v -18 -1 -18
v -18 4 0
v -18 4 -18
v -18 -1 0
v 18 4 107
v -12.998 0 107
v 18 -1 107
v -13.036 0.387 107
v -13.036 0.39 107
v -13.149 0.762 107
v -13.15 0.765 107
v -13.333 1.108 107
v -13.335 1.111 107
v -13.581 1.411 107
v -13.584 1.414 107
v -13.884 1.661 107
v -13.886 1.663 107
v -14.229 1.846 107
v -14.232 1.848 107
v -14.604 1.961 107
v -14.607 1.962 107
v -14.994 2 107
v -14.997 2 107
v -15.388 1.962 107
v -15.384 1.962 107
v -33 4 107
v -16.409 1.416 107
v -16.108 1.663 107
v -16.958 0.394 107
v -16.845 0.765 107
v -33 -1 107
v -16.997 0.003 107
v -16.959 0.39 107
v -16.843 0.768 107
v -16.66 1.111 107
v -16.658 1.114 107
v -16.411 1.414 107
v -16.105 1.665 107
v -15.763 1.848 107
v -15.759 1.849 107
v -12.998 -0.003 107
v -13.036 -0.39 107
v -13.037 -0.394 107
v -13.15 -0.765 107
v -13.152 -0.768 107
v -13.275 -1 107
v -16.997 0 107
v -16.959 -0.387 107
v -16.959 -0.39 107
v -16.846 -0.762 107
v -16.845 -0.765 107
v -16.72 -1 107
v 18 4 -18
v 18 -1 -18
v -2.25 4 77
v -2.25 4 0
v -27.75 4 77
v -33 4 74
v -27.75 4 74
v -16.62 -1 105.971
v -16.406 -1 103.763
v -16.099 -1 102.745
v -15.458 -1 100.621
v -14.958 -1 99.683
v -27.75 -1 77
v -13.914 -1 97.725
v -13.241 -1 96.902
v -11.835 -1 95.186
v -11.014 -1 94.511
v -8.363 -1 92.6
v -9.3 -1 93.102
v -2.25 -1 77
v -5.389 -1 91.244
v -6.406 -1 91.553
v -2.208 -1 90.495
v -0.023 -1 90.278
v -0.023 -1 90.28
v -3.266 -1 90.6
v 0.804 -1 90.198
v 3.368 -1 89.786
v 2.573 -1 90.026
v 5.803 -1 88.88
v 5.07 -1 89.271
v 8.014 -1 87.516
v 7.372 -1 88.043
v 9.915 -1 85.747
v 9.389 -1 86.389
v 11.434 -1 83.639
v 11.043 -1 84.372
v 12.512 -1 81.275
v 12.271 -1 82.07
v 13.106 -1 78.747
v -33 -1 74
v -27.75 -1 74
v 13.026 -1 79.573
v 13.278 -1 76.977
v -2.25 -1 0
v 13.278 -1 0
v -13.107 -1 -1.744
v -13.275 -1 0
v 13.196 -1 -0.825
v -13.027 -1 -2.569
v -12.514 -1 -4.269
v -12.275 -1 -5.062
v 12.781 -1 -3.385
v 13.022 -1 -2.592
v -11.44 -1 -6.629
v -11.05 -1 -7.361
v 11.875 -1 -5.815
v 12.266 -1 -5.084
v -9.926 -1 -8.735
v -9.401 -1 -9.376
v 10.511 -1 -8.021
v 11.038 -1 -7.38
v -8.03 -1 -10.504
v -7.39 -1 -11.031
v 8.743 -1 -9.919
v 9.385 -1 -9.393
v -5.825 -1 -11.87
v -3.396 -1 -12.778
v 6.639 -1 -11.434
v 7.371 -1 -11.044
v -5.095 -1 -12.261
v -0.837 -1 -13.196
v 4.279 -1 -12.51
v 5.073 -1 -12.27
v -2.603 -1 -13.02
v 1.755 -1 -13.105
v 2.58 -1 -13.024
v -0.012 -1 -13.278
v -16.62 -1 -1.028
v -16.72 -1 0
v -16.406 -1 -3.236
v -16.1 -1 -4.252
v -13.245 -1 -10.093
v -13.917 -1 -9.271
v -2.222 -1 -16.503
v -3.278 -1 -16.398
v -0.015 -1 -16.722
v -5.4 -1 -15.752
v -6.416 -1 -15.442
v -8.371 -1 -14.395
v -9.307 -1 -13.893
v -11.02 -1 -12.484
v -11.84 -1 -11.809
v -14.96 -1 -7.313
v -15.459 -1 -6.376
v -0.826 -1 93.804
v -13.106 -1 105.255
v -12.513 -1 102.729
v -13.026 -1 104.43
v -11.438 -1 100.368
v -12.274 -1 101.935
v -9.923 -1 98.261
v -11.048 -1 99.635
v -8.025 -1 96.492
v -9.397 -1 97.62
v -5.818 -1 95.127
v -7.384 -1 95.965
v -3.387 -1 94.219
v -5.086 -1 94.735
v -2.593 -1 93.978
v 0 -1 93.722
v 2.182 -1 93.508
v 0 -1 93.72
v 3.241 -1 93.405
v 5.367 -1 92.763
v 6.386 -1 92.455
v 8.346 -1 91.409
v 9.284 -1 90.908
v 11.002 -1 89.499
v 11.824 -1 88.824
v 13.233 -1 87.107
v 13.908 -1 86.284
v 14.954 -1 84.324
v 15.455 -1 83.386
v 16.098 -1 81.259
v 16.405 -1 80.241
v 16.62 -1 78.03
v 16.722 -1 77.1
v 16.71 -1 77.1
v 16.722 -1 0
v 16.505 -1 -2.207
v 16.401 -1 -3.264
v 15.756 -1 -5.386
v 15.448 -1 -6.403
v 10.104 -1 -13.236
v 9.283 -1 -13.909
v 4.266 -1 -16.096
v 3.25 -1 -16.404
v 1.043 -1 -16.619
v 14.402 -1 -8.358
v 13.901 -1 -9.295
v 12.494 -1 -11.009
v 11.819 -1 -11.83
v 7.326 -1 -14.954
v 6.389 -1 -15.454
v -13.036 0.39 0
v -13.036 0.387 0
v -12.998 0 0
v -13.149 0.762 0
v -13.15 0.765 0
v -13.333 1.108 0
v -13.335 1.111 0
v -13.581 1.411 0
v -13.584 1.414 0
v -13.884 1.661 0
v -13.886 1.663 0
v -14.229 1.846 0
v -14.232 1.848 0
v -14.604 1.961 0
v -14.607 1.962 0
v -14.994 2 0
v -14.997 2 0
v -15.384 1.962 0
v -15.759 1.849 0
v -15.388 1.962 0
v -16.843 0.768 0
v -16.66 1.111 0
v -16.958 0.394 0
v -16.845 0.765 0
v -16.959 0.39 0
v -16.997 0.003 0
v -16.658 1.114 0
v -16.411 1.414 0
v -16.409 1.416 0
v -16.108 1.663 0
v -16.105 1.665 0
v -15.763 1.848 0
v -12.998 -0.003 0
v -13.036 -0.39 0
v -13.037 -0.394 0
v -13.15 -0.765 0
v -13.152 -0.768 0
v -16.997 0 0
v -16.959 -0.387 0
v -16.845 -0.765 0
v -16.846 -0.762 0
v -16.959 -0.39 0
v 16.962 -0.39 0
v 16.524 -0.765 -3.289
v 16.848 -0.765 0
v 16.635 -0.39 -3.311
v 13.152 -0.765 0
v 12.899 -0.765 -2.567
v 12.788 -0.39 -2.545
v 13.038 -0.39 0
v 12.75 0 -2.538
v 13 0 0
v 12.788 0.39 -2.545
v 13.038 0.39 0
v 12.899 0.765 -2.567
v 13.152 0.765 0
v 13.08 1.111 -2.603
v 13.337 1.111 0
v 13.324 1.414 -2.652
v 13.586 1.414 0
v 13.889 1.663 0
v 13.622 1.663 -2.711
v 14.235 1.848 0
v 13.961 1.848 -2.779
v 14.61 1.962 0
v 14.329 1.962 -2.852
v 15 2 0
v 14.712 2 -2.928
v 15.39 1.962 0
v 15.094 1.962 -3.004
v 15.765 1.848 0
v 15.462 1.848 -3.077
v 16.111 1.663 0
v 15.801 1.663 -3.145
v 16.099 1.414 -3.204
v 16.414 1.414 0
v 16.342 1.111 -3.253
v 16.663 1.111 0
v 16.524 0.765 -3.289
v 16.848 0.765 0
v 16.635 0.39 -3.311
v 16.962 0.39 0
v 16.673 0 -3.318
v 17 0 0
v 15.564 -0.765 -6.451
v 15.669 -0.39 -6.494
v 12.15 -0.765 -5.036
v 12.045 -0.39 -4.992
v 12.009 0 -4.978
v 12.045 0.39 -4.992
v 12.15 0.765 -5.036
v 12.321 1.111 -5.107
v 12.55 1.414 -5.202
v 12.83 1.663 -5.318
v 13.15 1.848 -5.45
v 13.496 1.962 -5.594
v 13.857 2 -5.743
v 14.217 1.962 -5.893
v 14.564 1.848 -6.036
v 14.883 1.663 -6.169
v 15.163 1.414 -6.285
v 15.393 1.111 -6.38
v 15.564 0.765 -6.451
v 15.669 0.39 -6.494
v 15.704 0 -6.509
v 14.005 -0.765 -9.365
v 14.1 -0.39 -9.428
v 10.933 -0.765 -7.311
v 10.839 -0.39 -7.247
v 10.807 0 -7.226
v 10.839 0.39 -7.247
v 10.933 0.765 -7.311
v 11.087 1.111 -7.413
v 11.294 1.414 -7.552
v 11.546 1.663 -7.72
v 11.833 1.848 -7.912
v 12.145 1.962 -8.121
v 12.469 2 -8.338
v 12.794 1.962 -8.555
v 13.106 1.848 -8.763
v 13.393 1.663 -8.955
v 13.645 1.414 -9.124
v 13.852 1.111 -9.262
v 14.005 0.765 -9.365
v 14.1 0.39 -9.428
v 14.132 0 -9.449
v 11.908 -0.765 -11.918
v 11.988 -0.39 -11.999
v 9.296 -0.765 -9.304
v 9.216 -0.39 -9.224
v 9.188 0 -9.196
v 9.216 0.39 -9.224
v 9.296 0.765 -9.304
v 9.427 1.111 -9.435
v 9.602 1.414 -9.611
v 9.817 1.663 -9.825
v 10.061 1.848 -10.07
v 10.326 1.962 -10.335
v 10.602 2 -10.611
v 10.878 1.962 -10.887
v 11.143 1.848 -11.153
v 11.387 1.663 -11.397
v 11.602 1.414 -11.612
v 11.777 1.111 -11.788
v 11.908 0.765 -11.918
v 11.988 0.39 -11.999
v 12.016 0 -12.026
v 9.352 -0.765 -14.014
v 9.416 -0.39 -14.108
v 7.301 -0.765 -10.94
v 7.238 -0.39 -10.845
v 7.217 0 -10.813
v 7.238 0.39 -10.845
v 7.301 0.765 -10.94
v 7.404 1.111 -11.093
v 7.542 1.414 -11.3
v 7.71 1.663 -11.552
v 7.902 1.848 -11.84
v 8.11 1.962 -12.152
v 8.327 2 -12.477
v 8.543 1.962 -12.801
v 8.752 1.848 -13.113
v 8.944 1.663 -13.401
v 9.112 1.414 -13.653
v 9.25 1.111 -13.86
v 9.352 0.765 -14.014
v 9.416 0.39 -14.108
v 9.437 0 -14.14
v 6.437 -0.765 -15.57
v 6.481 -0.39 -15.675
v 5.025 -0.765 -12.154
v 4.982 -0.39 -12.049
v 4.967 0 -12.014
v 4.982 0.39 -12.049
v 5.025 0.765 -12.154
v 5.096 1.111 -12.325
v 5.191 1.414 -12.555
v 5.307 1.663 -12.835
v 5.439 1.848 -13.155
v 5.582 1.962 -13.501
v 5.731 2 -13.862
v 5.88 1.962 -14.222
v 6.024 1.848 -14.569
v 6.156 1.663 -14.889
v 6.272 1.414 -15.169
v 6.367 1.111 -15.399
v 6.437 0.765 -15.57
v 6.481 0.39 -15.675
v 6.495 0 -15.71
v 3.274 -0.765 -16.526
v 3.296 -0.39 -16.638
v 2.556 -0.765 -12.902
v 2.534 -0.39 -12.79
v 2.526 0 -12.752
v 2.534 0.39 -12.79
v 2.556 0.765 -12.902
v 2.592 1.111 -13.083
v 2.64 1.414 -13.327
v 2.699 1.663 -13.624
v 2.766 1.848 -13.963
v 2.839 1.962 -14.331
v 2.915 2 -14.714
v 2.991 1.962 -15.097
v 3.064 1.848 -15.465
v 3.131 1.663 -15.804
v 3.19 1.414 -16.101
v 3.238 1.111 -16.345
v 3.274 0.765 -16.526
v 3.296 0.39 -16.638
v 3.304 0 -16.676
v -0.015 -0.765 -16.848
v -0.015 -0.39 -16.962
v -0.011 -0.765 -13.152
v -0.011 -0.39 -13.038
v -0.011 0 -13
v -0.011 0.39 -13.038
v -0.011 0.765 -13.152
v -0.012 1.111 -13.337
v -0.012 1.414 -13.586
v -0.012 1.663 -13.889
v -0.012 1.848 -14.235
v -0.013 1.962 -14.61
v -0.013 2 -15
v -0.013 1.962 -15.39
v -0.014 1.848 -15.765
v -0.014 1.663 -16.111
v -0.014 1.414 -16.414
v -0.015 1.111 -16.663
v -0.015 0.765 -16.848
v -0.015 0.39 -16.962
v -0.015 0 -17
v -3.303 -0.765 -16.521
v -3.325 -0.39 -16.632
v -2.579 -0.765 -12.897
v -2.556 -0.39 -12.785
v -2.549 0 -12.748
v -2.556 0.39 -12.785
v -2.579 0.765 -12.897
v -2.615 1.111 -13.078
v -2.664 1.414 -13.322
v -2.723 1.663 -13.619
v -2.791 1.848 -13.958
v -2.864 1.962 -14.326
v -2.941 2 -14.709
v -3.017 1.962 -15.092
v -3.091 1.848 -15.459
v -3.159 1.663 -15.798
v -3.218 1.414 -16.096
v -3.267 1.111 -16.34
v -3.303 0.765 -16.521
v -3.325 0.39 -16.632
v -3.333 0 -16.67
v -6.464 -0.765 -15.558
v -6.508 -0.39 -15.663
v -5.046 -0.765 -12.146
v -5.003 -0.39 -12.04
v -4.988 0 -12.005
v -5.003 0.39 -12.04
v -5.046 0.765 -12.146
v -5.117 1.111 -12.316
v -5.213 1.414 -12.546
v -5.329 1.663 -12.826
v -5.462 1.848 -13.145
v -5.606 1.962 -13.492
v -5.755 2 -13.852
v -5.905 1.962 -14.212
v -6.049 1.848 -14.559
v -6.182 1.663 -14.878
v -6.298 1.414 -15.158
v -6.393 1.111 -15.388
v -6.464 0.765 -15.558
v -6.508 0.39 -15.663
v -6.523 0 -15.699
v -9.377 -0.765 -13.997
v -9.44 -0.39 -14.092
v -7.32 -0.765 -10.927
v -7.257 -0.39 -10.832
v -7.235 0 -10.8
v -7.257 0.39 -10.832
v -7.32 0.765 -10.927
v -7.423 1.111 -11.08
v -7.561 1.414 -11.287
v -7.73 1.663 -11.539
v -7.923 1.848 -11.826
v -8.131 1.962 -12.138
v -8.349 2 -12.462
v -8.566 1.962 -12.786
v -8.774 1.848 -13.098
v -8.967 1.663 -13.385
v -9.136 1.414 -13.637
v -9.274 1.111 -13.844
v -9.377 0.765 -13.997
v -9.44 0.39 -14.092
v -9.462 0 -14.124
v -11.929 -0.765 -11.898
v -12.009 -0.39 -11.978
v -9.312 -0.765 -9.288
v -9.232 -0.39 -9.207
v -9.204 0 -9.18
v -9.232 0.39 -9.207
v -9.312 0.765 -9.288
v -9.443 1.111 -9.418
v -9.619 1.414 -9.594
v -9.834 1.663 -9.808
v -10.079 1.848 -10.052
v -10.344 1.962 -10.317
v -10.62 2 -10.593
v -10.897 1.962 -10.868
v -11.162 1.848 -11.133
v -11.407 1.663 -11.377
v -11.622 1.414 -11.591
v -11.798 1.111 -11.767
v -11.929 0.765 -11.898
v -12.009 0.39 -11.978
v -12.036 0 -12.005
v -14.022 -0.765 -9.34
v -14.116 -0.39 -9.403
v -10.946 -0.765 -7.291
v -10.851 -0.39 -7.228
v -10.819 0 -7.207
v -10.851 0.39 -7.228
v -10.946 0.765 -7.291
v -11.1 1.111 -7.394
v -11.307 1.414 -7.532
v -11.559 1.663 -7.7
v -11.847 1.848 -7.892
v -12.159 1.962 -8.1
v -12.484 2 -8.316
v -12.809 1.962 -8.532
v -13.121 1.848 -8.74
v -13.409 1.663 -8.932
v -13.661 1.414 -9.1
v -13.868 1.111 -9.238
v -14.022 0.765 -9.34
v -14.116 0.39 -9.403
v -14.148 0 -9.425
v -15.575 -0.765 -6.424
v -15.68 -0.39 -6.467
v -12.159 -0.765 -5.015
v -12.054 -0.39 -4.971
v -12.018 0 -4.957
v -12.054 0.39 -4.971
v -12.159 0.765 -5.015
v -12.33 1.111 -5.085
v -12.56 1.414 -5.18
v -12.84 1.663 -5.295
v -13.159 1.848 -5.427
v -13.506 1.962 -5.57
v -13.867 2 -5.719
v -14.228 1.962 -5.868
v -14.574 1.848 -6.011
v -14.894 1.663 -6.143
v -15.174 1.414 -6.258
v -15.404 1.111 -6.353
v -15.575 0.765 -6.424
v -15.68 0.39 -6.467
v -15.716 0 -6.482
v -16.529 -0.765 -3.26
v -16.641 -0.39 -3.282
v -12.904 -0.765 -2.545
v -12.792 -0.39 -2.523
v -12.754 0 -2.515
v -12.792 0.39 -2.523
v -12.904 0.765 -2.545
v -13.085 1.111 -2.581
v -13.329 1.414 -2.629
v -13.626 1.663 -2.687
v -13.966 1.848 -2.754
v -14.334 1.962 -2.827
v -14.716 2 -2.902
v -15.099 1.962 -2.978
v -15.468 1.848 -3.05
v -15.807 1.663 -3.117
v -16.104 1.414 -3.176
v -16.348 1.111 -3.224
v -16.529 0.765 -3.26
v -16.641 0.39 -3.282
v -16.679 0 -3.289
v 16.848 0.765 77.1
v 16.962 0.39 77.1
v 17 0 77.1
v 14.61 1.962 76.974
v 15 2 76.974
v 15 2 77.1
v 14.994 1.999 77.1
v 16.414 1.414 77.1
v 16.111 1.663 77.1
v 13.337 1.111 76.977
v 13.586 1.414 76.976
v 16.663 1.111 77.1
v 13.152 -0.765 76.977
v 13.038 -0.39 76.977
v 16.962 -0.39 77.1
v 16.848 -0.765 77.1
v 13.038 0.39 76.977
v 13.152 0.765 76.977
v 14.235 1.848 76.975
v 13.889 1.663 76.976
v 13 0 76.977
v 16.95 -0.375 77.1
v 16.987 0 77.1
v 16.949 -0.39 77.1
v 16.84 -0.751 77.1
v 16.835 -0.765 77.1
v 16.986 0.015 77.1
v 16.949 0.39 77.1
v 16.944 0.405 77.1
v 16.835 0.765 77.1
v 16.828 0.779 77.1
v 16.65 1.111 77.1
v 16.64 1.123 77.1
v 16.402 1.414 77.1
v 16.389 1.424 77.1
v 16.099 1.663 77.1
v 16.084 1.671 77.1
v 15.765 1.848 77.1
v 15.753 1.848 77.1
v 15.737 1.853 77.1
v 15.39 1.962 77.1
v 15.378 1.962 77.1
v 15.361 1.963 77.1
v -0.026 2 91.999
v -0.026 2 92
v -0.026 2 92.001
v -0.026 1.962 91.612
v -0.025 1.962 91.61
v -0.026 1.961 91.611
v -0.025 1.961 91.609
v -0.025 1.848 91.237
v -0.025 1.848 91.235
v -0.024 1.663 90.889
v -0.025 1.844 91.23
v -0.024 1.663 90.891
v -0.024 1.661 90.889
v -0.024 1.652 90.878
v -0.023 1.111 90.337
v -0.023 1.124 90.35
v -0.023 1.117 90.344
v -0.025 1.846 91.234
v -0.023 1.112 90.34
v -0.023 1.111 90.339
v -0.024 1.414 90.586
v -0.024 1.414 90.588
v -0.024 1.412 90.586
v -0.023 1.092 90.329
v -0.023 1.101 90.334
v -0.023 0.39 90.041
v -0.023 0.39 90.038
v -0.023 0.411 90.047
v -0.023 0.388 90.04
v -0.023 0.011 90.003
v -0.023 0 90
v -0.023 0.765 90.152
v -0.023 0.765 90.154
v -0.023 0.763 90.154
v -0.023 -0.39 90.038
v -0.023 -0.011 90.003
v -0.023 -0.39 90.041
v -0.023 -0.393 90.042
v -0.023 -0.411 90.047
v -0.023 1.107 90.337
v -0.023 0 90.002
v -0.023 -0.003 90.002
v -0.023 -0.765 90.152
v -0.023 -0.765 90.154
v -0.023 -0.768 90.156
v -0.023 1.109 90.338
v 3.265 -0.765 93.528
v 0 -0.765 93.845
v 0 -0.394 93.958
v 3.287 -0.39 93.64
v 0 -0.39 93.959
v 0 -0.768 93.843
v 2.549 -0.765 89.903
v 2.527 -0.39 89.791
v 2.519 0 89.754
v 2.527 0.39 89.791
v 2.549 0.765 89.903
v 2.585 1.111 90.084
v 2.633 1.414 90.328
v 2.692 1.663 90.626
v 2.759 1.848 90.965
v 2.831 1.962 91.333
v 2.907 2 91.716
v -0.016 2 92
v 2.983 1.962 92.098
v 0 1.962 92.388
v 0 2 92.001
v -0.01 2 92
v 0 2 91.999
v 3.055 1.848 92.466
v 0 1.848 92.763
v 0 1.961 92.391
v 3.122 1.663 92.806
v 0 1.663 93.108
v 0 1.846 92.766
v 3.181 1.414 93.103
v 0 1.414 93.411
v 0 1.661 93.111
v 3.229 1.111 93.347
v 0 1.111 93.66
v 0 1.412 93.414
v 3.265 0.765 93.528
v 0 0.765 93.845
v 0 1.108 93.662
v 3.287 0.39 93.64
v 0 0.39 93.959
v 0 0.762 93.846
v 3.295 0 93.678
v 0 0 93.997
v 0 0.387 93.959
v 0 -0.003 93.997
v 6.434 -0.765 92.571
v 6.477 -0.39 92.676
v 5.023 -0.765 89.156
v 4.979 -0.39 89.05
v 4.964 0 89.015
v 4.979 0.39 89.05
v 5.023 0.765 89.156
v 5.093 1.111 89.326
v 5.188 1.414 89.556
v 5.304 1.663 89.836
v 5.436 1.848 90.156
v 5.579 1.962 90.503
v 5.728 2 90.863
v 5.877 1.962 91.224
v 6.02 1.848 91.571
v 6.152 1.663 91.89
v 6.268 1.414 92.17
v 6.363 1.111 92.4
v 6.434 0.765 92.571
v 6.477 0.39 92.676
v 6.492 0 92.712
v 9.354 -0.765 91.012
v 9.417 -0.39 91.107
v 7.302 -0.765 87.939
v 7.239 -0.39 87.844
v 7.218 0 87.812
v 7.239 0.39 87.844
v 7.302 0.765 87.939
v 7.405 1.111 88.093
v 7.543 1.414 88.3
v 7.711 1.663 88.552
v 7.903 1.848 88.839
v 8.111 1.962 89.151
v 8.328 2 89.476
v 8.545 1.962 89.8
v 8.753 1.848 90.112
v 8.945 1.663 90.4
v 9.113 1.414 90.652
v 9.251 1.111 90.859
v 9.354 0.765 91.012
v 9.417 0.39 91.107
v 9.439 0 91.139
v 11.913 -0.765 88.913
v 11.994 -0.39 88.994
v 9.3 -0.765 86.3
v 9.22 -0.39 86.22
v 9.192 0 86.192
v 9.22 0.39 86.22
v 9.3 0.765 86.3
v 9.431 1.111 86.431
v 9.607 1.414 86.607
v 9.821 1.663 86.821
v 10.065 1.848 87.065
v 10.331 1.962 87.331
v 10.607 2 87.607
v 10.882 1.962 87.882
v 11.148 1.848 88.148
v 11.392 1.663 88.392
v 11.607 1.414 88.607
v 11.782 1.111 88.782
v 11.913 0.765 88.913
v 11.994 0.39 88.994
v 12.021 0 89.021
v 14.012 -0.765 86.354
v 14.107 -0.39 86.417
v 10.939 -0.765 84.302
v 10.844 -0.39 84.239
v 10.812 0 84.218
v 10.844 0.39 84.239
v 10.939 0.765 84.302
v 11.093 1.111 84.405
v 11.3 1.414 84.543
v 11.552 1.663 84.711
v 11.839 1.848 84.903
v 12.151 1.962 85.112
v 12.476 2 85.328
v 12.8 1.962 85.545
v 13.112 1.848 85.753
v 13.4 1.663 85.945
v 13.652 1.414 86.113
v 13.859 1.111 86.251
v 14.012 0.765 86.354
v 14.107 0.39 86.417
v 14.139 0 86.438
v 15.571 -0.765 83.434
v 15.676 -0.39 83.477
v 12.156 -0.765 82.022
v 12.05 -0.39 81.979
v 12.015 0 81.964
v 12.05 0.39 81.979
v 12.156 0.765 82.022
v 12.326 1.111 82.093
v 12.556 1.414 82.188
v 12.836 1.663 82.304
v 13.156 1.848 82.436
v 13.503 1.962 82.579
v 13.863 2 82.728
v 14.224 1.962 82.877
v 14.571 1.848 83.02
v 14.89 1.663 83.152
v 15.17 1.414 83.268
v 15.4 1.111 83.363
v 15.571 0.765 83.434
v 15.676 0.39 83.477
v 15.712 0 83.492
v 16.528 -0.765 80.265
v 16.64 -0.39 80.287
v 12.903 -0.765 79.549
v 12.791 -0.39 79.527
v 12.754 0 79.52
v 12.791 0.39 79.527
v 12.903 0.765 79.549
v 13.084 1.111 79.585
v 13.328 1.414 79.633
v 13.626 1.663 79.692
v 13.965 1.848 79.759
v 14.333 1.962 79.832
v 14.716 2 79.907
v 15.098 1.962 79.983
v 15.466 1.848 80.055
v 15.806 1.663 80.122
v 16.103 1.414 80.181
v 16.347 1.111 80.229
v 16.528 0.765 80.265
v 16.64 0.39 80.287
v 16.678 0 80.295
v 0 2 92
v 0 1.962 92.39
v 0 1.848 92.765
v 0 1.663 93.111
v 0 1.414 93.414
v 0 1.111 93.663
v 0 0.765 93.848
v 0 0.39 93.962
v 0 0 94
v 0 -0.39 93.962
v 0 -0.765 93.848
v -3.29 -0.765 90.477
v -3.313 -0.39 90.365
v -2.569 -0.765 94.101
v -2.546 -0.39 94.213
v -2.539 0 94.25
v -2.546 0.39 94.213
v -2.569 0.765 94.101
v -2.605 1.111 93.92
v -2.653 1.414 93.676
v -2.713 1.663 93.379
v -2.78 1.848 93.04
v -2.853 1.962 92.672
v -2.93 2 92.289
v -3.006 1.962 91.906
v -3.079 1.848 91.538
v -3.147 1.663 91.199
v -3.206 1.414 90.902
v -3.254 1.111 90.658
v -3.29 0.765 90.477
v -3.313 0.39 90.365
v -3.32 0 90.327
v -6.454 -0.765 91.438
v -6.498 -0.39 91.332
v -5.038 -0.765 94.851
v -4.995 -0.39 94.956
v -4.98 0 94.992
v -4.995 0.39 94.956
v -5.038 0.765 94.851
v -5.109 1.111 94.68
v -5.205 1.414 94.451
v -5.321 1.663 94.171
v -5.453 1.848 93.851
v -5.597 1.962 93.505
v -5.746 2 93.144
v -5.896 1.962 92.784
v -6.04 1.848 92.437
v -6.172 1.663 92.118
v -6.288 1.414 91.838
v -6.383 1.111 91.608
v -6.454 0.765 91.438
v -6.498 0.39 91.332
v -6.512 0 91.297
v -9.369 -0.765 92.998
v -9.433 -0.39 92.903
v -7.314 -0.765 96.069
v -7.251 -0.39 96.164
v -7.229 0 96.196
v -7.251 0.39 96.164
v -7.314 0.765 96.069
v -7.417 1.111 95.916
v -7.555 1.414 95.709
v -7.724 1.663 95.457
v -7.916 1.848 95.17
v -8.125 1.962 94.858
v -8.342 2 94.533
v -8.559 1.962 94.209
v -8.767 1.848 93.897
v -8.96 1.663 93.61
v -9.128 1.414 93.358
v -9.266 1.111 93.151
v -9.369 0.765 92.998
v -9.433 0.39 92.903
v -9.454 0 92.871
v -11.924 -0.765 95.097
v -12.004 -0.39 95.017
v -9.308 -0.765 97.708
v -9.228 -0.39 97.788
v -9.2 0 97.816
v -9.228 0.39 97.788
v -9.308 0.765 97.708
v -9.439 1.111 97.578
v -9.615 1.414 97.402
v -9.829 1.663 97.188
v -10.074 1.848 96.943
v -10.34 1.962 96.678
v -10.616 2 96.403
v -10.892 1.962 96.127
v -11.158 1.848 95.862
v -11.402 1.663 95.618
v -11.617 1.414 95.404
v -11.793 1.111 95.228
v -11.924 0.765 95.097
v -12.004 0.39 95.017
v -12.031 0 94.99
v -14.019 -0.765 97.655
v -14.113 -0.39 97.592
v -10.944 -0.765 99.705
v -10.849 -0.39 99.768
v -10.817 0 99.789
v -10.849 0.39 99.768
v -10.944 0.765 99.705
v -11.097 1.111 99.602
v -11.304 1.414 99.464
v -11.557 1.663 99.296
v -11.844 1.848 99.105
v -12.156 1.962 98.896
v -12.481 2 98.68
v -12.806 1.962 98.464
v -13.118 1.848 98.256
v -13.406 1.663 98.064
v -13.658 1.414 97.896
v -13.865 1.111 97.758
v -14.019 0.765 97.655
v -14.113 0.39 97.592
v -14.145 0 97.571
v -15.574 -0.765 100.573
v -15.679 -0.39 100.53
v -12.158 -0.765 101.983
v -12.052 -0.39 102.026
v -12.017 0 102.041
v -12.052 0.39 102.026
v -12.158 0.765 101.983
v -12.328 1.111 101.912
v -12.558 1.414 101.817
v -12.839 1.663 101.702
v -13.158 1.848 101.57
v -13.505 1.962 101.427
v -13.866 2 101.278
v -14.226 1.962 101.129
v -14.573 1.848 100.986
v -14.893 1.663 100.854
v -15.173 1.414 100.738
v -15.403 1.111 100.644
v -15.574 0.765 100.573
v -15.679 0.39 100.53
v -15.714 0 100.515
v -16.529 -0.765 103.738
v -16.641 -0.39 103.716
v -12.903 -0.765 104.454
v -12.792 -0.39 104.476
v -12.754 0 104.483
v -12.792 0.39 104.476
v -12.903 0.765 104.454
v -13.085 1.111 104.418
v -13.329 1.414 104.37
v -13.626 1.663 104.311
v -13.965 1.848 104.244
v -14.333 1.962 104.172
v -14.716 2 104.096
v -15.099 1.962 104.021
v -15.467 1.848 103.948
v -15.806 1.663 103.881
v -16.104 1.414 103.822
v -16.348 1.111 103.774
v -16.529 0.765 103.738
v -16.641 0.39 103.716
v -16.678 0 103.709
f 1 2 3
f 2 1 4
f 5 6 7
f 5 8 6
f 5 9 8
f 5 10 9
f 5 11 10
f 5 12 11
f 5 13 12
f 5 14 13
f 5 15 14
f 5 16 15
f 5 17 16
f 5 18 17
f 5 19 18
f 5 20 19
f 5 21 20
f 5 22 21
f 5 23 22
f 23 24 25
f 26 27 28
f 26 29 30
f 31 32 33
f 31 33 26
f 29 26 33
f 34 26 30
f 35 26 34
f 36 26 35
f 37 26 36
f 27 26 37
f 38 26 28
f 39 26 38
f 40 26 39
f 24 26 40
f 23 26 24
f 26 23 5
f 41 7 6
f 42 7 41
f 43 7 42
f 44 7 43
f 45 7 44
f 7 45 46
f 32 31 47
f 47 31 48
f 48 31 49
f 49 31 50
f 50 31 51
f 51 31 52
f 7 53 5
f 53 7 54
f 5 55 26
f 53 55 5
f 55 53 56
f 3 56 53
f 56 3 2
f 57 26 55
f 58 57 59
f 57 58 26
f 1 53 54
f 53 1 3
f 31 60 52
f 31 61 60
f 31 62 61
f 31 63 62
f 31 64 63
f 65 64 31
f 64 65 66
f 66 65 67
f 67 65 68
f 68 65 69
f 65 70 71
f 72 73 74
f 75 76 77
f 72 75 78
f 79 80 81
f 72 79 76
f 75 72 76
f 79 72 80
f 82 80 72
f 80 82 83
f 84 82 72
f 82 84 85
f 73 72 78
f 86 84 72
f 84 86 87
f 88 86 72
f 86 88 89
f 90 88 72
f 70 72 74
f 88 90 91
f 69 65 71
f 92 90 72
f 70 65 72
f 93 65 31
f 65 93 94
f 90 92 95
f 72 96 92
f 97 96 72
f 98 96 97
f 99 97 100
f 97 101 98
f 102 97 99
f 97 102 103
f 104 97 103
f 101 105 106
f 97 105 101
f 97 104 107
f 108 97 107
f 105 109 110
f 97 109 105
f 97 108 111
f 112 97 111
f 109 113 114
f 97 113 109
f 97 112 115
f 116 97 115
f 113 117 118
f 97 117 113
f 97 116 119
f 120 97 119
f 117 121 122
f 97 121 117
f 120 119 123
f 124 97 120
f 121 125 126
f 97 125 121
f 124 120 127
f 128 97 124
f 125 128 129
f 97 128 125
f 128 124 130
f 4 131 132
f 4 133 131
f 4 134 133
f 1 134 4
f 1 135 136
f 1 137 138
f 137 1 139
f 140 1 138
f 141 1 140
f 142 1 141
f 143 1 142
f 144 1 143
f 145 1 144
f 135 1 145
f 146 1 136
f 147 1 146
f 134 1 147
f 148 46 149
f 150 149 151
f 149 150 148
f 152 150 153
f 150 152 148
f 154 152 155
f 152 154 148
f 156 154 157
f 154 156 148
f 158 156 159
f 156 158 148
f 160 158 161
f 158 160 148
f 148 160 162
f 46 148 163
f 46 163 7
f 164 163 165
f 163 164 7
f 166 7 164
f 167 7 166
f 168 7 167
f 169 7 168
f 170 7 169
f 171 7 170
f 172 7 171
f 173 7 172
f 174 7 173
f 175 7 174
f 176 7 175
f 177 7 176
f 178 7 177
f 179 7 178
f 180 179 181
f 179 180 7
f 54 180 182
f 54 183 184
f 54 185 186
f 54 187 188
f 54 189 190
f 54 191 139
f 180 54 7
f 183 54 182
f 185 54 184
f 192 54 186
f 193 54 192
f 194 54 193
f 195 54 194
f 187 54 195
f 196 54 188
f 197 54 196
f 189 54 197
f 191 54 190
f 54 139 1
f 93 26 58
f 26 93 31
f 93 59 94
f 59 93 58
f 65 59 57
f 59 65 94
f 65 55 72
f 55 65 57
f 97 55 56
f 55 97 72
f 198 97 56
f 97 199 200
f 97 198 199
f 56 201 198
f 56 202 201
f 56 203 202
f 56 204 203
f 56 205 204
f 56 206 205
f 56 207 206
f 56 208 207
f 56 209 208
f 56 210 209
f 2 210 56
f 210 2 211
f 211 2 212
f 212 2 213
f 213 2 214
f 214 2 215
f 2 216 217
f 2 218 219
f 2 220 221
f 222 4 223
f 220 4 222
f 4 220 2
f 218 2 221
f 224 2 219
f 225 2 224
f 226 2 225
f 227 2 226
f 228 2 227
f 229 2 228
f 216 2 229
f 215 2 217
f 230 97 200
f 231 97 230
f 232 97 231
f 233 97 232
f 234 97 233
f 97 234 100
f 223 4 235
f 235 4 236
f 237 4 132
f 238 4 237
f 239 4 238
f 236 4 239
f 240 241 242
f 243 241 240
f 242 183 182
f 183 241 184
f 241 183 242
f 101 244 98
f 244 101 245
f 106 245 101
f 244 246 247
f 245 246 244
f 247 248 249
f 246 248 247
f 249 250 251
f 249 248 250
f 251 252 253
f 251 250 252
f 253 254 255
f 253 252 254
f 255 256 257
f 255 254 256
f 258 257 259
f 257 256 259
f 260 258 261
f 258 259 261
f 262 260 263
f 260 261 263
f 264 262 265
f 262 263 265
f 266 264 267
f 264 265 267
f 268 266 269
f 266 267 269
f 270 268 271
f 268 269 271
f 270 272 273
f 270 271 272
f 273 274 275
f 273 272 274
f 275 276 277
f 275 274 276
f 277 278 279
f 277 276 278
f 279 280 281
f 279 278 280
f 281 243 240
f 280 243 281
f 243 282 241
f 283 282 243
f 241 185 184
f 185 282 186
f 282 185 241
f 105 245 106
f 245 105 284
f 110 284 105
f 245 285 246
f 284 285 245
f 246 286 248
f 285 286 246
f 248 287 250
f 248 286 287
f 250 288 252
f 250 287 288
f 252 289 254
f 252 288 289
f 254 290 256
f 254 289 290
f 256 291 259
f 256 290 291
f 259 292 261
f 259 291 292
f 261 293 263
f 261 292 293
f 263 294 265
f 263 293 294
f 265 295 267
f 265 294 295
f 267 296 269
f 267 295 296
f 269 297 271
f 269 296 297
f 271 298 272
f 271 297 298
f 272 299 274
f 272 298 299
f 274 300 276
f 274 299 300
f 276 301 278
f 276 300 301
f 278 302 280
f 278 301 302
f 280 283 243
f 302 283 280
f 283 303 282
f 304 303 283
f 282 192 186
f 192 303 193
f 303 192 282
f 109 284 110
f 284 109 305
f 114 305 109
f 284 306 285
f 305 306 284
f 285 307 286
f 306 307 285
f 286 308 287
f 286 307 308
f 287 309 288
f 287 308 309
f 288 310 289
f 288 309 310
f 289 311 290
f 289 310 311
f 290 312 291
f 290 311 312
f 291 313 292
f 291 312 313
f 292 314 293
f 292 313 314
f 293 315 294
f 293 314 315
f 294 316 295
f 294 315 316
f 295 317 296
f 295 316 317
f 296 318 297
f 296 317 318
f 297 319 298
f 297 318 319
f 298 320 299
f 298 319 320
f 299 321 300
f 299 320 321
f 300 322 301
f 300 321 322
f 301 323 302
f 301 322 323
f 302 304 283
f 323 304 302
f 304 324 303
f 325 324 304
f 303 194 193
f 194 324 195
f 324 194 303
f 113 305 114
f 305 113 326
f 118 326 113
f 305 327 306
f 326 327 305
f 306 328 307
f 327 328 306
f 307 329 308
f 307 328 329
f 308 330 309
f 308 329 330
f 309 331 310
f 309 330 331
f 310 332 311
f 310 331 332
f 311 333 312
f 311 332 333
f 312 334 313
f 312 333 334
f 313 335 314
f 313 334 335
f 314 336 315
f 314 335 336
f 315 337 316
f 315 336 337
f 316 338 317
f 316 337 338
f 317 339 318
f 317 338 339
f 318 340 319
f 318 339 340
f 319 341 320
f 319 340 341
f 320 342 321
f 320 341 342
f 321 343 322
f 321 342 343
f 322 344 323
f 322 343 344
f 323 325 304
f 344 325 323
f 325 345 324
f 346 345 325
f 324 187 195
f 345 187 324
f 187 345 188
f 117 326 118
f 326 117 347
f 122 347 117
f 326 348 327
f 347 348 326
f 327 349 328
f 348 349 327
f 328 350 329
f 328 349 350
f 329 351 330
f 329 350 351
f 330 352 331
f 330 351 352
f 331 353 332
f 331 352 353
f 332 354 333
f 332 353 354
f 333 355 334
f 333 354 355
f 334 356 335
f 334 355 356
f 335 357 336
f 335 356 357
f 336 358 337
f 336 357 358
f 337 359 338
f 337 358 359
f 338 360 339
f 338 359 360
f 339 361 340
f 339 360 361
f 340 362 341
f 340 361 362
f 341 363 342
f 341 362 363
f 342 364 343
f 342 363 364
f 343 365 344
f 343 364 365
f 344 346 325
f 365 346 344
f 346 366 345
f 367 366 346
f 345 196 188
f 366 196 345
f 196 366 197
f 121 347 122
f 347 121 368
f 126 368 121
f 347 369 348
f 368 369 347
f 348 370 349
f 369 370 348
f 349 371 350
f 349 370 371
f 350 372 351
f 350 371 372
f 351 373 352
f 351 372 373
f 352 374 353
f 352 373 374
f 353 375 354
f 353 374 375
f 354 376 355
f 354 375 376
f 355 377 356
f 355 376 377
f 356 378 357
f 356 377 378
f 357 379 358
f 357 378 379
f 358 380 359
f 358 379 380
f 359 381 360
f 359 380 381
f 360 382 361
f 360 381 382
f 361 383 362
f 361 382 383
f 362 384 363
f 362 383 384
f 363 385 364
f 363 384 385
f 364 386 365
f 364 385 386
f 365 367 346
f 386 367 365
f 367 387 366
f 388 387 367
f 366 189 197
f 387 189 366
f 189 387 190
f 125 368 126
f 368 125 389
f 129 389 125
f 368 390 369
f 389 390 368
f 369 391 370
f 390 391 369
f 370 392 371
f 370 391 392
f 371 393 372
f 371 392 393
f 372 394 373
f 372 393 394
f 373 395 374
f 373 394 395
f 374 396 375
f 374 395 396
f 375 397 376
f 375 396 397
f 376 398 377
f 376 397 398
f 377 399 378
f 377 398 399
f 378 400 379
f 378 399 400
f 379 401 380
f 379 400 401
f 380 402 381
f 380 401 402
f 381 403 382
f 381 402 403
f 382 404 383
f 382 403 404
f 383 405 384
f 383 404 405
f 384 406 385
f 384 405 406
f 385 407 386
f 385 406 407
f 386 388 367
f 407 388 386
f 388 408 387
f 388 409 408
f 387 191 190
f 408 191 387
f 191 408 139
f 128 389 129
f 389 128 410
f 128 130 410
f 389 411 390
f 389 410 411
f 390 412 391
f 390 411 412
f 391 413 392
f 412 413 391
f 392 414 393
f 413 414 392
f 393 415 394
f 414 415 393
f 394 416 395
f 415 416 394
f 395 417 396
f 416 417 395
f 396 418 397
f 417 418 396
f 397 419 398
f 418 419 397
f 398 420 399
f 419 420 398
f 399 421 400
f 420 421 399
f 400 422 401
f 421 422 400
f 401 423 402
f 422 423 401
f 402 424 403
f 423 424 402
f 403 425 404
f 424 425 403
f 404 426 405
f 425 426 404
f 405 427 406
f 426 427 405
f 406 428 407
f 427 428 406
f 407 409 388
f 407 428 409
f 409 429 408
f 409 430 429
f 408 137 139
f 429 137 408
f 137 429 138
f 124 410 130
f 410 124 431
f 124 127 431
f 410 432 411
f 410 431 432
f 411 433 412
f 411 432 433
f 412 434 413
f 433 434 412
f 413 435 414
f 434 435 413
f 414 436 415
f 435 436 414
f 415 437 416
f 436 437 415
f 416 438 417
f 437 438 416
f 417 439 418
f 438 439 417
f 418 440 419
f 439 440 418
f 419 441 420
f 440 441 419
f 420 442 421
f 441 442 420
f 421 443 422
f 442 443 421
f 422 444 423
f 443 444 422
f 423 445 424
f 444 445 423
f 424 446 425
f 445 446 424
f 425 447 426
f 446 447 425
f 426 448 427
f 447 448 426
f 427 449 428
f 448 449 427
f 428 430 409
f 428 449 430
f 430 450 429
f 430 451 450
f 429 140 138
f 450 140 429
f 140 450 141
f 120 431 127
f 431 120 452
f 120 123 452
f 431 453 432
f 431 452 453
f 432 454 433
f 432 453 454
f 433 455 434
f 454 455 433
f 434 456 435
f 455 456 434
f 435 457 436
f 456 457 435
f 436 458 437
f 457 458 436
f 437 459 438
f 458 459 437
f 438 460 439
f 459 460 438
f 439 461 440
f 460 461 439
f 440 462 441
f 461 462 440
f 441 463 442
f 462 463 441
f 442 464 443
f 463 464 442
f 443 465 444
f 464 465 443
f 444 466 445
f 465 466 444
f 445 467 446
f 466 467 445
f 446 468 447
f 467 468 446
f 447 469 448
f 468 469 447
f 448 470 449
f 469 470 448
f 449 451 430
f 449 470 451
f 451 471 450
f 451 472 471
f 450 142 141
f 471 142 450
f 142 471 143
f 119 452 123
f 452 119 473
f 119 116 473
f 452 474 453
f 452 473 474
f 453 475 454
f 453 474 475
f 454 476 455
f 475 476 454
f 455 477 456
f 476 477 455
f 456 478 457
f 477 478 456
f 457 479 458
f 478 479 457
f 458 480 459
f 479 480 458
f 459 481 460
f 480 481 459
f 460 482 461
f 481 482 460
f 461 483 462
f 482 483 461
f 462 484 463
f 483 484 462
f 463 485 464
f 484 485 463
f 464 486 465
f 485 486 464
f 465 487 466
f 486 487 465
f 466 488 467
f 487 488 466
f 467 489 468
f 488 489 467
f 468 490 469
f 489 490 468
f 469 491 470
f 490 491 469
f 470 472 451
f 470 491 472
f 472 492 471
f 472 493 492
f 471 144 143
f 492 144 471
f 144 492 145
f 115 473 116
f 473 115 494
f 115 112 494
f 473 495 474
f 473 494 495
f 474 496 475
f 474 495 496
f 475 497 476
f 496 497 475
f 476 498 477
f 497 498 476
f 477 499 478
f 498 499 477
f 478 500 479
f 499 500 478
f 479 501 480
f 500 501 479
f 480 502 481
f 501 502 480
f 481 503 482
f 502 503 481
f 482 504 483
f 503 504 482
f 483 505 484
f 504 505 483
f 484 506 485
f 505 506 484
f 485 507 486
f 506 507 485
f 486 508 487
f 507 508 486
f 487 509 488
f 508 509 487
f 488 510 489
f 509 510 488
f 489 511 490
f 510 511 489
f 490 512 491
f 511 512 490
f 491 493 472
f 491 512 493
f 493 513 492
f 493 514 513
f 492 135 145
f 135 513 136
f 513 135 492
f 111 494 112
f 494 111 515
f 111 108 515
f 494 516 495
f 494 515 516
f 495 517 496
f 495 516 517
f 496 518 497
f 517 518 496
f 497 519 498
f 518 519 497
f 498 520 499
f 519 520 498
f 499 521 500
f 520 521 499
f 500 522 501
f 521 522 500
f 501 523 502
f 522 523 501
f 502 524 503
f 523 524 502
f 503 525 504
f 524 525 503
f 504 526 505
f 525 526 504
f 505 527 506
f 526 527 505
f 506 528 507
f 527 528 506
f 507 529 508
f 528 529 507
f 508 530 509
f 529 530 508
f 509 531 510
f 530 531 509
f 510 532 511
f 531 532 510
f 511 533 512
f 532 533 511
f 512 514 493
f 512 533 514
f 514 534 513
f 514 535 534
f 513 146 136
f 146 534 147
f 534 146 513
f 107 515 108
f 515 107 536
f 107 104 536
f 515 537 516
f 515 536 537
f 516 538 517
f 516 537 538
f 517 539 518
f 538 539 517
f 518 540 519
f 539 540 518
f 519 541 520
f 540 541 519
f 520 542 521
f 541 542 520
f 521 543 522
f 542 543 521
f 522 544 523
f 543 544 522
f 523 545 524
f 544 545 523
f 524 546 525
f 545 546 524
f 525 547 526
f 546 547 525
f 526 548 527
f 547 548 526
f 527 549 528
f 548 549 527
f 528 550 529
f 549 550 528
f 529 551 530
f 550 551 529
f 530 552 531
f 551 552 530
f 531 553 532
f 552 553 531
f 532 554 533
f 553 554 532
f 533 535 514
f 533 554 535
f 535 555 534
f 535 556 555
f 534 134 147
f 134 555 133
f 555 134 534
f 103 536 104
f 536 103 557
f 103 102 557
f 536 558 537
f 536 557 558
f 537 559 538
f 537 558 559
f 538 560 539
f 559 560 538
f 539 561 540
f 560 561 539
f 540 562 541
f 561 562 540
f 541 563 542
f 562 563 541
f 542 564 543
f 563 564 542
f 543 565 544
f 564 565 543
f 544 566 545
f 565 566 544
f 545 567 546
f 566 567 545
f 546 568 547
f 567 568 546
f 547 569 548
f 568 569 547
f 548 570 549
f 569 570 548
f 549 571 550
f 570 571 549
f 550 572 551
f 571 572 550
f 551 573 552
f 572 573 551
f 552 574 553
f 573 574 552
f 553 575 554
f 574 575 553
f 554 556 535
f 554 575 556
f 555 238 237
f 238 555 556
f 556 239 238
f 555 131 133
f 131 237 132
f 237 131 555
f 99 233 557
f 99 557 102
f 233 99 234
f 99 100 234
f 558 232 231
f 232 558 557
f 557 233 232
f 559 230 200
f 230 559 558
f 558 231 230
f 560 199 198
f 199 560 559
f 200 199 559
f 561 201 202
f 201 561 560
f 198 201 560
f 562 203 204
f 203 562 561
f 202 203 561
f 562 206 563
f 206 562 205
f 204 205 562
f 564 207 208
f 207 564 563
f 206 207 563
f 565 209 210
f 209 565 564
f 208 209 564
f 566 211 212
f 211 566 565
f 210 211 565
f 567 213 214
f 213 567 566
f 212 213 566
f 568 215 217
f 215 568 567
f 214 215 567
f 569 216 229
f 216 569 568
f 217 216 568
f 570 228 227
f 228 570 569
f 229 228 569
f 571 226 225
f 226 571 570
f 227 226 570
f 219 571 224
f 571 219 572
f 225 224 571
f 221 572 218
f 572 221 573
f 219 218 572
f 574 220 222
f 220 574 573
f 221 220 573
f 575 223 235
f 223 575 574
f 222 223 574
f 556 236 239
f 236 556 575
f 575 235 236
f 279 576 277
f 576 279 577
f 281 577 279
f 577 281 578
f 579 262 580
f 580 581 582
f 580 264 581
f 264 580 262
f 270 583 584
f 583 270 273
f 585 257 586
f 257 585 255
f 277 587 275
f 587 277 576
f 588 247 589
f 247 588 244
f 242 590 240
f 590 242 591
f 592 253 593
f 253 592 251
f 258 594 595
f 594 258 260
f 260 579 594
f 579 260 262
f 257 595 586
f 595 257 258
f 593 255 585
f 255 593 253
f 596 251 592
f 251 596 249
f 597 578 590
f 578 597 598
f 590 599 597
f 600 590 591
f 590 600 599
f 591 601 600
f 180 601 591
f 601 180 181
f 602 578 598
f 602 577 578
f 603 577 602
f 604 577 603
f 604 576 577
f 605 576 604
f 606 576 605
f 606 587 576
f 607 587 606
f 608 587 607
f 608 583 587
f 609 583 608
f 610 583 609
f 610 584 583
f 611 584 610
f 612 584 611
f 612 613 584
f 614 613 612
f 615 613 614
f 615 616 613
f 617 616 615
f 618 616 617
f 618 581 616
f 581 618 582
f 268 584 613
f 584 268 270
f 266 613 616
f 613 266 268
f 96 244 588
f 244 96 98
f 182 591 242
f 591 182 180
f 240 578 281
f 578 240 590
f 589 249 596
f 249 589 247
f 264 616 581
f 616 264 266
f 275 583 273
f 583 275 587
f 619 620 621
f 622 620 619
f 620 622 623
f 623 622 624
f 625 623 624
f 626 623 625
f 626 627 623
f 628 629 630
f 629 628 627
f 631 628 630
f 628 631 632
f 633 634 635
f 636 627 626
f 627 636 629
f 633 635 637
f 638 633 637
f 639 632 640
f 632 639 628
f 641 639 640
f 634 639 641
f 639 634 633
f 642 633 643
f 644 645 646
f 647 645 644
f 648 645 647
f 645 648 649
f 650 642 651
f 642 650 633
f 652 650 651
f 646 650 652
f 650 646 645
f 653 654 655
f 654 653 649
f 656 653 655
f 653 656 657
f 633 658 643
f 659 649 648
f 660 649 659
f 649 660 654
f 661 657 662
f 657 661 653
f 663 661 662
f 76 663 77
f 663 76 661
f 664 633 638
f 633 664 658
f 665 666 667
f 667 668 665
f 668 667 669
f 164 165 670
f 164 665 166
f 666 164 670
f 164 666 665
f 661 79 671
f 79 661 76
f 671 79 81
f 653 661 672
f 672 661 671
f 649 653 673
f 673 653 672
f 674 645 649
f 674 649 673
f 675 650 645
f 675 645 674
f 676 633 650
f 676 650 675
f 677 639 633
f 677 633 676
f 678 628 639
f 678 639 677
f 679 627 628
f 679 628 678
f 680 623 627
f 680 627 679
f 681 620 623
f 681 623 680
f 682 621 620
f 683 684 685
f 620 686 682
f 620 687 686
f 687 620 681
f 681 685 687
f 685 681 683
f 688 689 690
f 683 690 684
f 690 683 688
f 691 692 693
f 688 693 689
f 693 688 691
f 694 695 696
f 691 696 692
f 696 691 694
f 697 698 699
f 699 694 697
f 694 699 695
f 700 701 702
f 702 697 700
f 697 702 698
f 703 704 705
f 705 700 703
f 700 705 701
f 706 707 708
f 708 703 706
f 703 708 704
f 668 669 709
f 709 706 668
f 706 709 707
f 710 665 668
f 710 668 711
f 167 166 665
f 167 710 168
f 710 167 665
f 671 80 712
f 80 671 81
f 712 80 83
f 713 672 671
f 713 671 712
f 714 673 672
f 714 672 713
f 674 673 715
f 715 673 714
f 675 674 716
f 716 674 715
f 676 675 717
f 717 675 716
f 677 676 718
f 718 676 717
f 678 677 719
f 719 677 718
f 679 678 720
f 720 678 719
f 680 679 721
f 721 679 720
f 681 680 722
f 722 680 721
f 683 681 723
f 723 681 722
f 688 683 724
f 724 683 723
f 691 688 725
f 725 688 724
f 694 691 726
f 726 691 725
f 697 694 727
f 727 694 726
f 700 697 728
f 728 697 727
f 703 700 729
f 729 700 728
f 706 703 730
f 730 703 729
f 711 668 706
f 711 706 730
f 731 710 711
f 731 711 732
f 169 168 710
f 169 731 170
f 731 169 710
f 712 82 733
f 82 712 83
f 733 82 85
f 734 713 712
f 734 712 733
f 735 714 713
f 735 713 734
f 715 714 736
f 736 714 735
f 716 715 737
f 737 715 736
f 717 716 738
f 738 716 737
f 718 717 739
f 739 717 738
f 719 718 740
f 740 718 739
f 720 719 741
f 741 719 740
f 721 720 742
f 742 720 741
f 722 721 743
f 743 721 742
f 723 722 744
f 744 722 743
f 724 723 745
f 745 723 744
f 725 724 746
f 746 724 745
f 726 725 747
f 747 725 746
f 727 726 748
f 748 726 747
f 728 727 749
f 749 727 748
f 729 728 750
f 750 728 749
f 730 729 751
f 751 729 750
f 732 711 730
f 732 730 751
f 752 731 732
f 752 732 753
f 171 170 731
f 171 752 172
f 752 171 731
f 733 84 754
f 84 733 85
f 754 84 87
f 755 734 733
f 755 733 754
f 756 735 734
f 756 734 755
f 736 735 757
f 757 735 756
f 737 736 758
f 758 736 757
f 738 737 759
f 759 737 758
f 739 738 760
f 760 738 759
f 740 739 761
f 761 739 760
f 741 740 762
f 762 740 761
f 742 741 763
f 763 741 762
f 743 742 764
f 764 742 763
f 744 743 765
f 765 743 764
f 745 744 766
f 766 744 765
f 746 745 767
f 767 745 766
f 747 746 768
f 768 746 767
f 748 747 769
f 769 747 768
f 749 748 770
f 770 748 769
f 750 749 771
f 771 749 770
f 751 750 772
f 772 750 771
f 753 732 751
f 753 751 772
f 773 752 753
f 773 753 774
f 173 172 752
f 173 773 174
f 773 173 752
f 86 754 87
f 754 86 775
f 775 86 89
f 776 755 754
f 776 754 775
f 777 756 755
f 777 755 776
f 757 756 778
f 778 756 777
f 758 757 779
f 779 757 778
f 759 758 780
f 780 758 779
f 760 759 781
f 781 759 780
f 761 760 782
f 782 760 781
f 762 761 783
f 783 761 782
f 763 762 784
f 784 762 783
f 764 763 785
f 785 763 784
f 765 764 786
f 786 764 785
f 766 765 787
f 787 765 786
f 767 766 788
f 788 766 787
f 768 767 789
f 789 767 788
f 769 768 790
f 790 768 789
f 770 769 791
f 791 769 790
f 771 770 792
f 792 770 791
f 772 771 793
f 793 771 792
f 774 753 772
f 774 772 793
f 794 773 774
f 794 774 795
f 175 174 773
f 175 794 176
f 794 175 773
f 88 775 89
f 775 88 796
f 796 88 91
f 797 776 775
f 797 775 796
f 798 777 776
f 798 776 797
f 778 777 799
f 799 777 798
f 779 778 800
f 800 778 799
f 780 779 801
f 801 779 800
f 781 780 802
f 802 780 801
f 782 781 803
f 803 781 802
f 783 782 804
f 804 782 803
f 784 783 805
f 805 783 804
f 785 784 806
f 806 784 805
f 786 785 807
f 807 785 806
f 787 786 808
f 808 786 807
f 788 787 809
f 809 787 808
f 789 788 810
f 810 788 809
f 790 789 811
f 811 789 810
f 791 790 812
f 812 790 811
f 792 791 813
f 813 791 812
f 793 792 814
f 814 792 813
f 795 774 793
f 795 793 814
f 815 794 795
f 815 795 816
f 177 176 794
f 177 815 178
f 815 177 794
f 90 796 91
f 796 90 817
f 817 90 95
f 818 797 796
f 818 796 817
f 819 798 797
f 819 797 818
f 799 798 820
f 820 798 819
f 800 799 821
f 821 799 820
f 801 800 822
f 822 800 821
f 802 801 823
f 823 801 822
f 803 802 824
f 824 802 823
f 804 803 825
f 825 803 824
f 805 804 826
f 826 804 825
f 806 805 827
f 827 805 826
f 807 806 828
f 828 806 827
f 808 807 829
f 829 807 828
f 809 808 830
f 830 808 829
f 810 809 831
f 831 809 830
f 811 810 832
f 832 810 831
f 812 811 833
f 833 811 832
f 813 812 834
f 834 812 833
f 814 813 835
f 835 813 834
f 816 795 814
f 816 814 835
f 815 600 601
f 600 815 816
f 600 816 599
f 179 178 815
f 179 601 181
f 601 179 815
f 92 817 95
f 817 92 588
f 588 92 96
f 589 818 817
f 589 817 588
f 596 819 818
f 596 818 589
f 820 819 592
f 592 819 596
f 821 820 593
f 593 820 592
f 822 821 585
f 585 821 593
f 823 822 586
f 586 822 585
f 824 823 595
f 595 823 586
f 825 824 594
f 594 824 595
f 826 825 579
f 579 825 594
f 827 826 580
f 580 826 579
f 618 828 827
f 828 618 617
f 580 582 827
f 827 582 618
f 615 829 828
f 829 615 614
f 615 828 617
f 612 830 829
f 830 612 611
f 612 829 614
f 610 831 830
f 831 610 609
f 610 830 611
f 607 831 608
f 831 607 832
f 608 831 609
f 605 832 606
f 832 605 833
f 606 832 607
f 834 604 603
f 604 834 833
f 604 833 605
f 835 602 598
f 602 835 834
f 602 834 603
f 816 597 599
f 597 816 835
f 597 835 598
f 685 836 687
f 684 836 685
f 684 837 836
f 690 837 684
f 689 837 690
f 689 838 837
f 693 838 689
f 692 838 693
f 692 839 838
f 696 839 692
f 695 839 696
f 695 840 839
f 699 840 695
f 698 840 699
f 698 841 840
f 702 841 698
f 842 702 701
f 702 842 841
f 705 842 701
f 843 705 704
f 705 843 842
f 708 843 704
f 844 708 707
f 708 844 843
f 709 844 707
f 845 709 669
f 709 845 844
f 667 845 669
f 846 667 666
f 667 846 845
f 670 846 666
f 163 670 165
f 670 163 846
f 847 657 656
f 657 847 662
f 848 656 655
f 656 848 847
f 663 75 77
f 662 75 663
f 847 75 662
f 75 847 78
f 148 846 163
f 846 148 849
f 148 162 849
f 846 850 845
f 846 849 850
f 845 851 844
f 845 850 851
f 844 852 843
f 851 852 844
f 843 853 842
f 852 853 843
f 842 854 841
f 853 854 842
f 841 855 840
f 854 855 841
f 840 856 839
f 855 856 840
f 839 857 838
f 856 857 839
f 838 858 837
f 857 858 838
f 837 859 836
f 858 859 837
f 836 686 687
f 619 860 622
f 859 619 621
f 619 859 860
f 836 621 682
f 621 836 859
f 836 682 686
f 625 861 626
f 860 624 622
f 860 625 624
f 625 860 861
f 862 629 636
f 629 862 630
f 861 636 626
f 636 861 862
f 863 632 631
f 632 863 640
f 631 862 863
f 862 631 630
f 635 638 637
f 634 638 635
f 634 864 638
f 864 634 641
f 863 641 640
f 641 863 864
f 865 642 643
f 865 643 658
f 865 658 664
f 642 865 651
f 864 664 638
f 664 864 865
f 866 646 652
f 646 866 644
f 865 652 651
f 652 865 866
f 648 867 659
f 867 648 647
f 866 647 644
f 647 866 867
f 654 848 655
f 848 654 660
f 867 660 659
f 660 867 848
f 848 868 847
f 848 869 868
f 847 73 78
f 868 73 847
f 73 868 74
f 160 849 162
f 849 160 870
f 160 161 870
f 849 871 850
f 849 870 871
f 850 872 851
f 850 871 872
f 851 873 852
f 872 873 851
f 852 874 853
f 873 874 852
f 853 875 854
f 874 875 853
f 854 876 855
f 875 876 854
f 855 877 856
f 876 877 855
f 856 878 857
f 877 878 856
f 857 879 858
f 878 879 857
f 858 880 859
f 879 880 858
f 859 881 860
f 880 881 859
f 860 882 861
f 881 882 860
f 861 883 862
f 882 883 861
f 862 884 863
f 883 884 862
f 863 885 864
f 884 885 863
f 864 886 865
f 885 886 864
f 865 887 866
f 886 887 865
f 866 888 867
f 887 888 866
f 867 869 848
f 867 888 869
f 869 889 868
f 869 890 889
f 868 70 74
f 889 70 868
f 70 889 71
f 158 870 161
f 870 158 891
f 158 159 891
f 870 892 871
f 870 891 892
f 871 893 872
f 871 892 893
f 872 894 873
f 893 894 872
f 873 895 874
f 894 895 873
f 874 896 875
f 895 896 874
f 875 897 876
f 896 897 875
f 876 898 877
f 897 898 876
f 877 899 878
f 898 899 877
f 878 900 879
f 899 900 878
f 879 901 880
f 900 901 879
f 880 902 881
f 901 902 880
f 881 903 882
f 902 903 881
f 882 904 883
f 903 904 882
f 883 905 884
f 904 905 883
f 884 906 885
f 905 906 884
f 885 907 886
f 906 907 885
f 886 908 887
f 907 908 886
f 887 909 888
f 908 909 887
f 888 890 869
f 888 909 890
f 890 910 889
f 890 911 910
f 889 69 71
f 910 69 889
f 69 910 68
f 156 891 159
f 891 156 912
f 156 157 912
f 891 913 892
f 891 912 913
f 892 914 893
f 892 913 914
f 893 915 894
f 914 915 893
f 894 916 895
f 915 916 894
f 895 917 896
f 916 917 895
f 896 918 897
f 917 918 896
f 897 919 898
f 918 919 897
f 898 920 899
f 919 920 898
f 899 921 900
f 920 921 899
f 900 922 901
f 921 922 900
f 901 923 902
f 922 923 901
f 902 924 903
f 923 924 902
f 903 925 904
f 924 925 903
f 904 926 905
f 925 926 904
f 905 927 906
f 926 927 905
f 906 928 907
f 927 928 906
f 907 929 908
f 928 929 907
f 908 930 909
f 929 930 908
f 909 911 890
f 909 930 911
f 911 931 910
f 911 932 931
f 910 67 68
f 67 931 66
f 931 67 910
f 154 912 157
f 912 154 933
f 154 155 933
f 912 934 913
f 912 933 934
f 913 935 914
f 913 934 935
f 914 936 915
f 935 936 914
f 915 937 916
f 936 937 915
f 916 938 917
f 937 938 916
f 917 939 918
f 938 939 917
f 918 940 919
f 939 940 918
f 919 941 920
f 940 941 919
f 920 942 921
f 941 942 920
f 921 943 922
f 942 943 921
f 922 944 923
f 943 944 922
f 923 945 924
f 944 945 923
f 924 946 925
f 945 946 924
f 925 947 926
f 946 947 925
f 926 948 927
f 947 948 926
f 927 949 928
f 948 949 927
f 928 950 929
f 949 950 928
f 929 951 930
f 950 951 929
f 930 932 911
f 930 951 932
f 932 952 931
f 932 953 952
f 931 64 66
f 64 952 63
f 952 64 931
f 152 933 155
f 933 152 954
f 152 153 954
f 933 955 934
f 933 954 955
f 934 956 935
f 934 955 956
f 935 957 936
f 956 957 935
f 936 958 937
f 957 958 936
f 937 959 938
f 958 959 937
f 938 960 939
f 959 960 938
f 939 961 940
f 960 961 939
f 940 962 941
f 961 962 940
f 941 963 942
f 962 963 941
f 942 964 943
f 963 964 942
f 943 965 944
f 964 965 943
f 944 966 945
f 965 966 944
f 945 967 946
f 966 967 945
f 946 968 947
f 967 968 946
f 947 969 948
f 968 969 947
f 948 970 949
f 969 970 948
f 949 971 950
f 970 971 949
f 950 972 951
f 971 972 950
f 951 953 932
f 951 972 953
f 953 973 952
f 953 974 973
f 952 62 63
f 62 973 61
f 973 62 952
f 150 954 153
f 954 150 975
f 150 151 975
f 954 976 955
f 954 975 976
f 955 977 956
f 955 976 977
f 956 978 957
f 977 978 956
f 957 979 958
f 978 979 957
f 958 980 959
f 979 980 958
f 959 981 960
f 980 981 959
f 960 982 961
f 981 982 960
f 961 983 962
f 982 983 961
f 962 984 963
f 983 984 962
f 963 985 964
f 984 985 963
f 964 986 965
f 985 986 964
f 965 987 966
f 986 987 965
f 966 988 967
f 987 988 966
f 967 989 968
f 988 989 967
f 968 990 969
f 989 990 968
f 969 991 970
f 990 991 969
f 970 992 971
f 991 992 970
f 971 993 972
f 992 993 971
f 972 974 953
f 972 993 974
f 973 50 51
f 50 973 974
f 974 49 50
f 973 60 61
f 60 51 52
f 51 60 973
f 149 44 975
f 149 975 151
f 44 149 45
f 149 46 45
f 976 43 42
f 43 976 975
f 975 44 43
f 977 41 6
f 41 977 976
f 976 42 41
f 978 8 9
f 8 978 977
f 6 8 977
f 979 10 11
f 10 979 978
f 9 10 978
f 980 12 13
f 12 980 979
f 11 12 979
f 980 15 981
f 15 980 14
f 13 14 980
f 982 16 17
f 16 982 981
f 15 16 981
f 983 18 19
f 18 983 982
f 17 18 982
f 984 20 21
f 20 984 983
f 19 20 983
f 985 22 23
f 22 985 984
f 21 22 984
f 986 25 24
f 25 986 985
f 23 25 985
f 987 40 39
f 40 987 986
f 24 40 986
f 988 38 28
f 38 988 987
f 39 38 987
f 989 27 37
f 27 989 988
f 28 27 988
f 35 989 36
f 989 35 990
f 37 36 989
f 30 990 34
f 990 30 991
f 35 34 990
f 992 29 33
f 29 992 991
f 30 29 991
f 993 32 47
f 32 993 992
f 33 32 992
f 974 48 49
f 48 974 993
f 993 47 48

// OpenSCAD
offcenter = 15;

$fn=32;

difference()
{
    union() {
        translate([-offcenter-3,-1,-offcenter-3])
            cube([2*offcenter+6,5,77+3*offcenter+3]);
        translate([-2*offcenter-3,-1,77-3])
            cube([2*offcenter,5,2*offcenter+3]);
    }

    //lamp
    translate([-25.5/2-offcenter,-5,0])
        cube([25.5, 10, 77]);

    // cable guide
    rotate([-90,0,0])
    rotate_extrude(angle=180.1){
        translate([offcenter,0,0])
            circle(r=2);
    }

    linear_extrude(height=77.1){
        translate([offcenter,0,0])
            circle(r=2);
    }

    translate([0,0,77])
    rotate([-90,-90.1,0])
    rotate_extrude(angle=90.2){
        translate([offcenter,0,0])
            circle(r=2);
    }

    translate([0,0,77+2*offcenter])
    rotate([-90,90,0])
    rotate_extrude(angle=90.1){
        translate([offcenter,0,0])
            circle(r=2);
    }
}
